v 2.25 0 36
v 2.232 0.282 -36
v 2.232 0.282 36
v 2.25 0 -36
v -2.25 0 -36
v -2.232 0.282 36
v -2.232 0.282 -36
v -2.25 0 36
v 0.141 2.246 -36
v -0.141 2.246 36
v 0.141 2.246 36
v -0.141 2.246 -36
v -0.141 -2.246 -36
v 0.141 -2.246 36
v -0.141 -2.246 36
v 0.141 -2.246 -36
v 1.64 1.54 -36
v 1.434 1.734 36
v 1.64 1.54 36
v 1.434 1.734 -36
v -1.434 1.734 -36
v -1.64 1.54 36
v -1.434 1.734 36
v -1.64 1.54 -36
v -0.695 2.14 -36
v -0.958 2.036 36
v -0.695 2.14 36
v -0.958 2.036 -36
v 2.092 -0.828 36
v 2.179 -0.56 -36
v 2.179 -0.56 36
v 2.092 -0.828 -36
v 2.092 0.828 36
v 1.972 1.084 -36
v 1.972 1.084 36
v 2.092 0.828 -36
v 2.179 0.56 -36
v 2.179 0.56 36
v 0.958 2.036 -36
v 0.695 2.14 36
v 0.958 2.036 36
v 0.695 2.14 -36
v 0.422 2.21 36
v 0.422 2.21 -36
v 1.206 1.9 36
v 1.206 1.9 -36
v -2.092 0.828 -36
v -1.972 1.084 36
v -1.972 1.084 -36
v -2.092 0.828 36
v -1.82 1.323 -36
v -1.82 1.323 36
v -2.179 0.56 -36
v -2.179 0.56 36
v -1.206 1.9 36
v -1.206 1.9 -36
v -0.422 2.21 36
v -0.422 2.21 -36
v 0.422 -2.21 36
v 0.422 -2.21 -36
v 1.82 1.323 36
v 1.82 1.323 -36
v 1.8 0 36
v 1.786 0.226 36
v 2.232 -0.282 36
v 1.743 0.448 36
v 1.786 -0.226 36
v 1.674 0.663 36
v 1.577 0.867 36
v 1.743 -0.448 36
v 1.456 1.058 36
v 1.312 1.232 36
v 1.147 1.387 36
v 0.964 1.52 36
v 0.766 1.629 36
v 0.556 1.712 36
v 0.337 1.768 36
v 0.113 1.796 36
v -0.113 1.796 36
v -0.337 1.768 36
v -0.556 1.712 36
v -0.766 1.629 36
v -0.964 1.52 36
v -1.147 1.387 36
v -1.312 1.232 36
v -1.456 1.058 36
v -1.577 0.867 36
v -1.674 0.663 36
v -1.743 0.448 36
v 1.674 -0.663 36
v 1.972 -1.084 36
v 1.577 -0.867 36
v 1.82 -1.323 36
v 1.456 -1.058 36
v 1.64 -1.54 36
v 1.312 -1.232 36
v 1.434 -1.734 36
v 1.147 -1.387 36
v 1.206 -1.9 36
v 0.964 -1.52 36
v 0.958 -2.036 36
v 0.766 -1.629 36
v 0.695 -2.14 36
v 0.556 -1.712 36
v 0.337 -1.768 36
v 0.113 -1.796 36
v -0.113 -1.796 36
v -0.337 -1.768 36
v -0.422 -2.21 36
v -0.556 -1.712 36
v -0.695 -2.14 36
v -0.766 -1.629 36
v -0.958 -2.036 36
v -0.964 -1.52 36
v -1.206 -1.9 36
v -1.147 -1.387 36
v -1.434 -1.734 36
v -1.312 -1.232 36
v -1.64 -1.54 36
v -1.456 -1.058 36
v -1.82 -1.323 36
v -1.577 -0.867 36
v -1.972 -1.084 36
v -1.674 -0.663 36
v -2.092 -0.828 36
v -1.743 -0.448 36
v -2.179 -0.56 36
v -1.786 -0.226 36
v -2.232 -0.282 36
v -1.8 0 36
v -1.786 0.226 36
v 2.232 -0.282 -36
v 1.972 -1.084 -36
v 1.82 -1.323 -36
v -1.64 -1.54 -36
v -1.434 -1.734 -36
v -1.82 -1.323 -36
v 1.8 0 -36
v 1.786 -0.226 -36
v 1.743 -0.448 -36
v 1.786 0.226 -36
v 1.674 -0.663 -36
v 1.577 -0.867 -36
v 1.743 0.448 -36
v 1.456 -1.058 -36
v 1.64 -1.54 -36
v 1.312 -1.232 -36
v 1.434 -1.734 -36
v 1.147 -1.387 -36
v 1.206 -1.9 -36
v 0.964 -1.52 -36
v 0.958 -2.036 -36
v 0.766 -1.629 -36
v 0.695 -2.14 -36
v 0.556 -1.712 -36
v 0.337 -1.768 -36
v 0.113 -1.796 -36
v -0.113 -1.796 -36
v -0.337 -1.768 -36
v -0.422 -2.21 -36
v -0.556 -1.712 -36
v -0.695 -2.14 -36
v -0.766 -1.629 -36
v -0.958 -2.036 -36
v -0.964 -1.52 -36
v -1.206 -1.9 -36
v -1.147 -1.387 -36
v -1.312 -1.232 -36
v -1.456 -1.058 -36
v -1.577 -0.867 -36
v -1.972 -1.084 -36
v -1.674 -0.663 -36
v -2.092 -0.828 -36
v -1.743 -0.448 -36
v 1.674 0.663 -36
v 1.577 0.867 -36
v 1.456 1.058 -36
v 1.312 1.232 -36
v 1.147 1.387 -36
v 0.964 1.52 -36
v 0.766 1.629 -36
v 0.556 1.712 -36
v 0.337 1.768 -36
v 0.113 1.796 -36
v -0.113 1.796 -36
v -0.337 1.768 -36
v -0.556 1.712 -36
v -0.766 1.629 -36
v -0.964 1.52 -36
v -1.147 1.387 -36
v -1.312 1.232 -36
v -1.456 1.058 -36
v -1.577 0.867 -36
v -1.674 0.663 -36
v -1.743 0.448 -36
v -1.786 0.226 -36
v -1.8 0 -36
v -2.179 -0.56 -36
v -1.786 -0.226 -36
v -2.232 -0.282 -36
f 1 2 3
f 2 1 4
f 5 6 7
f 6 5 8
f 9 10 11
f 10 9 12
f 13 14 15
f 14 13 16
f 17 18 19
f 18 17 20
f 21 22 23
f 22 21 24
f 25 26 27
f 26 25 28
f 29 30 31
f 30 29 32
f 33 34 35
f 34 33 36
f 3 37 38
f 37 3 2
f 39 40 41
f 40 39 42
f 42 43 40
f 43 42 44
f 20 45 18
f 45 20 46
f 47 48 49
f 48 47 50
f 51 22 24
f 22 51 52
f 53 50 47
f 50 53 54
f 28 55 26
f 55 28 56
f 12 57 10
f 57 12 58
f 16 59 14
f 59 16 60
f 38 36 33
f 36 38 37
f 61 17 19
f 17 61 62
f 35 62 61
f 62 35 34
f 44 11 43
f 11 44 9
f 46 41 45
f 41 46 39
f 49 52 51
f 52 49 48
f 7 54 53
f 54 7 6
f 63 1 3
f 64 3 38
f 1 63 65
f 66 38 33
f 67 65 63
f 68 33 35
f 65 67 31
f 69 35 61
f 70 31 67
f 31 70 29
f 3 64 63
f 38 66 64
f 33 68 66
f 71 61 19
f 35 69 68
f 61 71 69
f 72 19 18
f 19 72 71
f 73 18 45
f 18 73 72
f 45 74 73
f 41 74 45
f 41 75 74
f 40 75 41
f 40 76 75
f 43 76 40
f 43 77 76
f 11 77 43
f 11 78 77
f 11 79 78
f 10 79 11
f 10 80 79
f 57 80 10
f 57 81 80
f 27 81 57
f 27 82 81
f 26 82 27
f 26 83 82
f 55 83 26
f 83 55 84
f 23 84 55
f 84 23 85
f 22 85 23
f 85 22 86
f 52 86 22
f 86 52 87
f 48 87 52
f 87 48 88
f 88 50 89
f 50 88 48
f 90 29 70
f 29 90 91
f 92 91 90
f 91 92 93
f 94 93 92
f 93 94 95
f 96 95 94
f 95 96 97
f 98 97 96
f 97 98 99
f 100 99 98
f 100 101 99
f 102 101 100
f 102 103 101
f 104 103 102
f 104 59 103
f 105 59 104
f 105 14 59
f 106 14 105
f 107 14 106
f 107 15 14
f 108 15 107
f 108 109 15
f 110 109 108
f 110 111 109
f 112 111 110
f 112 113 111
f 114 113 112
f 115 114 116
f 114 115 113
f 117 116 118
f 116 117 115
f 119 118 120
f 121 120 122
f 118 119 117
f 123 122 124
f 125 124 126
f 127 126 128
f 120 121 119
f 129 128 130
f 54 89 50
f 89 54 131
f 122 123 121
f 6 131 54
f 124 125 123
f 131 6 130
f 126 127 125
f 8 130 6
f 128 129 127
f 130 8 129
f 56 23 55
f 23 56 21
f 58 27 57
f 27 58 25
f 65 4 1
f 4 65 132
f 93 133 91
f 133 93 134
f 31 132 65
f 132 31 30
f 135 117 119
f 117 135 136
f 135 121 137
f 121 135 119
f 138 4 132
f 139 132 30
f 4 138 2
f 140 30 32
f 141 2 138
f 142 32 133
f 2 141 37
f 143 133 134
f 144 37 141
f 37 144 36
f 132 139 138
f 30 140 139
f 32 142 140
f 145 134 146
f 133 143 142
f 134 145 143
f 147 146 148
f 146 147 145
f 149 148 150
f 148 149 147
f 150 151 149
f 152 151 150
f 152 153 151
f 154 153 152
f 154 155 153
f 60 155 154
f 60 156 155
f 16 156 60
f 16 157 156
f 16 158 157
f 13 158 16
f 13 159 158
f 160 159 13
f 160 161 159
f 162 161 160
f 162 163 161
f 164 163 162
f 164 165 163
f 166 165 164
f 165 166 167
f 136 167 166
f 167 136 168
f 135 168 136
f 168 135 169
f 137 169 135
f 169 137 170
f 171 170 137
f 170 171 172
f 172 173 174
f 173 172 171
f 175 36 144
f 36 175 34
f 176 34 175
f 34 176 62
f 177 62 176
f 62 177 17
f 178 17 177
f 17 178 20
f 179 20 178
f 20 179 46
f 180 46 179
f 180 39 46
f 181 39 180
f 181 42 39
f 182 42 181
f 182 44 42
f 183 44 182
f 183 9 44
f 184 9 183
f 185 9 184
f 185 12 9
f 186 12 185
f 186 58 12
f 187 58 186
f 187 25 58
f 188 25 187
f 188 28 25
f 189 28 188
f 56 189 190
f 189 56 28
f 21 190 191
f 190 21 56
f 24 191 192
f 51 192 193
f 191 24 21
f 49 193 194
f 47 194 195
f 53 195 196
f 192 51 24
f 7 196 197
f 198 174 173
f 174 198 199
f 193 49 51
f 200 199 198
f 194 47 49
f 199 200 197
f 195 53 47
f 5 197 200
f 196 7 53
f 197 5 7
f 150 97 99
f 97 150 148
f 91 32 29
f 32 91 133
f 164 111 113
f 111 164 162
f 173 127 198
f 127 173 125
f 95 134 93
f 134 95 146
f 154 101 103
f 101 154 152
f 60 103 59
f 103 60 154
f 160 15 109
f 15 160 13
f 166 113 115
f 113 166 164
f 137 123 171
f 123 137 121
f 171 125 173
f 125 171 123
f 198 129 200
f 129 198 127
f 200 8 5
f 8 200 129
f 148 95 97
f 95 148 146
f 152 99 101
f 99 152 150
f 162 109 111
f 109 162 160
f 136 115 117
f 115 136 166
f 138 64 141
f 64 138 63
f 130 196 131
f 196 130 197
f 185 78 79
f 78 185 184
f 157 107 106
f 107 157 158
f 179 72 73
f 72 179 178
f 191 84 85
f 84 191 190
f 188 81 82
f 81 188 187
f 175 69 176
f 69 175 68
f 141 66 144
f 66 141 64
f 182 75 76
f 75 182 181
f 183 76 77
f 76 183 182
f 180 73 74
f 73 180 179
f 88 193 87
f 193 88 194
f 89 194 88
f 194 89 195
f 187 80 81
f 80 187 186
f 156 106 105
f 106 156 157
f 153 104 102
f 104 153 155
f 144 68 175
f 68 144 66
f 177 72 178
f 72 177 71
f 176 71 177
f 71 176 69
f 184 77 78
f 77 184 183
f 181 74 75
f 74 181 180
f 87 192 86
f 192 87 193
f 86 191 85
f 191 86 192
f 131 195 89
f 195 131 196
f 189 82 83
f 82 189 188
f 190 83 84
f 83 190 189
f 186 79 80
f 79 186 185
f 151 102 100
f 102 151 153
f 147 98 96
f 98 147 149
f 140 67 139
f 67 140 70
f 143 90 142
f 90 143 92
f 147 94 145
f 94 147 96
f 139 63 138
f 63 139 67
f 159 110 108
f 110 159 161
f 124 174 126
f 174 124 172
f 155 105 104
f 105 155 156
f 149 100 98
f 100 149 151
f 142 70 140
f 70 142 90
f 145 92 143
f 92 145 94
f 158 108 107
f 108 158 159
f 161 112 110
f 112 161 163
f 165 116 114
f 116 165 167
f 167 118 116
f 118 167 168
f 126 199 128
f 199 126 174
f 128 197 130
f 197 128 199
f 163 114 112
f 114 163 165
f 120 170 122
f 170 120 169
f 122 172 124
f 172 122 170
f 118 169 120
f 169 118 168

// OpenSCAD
$fn = 50;


difference() {
	union() {
		translate(v = [0, 0, -36.0000000000]) {
			cylinder(h = 72, r = 2.2500000000);
		}
	}
	union() {
		translate(v = [0, 0, -100.0000000000]) {
			cylinder(h = 200, r = 1.8000000000);
		}
	}
}
